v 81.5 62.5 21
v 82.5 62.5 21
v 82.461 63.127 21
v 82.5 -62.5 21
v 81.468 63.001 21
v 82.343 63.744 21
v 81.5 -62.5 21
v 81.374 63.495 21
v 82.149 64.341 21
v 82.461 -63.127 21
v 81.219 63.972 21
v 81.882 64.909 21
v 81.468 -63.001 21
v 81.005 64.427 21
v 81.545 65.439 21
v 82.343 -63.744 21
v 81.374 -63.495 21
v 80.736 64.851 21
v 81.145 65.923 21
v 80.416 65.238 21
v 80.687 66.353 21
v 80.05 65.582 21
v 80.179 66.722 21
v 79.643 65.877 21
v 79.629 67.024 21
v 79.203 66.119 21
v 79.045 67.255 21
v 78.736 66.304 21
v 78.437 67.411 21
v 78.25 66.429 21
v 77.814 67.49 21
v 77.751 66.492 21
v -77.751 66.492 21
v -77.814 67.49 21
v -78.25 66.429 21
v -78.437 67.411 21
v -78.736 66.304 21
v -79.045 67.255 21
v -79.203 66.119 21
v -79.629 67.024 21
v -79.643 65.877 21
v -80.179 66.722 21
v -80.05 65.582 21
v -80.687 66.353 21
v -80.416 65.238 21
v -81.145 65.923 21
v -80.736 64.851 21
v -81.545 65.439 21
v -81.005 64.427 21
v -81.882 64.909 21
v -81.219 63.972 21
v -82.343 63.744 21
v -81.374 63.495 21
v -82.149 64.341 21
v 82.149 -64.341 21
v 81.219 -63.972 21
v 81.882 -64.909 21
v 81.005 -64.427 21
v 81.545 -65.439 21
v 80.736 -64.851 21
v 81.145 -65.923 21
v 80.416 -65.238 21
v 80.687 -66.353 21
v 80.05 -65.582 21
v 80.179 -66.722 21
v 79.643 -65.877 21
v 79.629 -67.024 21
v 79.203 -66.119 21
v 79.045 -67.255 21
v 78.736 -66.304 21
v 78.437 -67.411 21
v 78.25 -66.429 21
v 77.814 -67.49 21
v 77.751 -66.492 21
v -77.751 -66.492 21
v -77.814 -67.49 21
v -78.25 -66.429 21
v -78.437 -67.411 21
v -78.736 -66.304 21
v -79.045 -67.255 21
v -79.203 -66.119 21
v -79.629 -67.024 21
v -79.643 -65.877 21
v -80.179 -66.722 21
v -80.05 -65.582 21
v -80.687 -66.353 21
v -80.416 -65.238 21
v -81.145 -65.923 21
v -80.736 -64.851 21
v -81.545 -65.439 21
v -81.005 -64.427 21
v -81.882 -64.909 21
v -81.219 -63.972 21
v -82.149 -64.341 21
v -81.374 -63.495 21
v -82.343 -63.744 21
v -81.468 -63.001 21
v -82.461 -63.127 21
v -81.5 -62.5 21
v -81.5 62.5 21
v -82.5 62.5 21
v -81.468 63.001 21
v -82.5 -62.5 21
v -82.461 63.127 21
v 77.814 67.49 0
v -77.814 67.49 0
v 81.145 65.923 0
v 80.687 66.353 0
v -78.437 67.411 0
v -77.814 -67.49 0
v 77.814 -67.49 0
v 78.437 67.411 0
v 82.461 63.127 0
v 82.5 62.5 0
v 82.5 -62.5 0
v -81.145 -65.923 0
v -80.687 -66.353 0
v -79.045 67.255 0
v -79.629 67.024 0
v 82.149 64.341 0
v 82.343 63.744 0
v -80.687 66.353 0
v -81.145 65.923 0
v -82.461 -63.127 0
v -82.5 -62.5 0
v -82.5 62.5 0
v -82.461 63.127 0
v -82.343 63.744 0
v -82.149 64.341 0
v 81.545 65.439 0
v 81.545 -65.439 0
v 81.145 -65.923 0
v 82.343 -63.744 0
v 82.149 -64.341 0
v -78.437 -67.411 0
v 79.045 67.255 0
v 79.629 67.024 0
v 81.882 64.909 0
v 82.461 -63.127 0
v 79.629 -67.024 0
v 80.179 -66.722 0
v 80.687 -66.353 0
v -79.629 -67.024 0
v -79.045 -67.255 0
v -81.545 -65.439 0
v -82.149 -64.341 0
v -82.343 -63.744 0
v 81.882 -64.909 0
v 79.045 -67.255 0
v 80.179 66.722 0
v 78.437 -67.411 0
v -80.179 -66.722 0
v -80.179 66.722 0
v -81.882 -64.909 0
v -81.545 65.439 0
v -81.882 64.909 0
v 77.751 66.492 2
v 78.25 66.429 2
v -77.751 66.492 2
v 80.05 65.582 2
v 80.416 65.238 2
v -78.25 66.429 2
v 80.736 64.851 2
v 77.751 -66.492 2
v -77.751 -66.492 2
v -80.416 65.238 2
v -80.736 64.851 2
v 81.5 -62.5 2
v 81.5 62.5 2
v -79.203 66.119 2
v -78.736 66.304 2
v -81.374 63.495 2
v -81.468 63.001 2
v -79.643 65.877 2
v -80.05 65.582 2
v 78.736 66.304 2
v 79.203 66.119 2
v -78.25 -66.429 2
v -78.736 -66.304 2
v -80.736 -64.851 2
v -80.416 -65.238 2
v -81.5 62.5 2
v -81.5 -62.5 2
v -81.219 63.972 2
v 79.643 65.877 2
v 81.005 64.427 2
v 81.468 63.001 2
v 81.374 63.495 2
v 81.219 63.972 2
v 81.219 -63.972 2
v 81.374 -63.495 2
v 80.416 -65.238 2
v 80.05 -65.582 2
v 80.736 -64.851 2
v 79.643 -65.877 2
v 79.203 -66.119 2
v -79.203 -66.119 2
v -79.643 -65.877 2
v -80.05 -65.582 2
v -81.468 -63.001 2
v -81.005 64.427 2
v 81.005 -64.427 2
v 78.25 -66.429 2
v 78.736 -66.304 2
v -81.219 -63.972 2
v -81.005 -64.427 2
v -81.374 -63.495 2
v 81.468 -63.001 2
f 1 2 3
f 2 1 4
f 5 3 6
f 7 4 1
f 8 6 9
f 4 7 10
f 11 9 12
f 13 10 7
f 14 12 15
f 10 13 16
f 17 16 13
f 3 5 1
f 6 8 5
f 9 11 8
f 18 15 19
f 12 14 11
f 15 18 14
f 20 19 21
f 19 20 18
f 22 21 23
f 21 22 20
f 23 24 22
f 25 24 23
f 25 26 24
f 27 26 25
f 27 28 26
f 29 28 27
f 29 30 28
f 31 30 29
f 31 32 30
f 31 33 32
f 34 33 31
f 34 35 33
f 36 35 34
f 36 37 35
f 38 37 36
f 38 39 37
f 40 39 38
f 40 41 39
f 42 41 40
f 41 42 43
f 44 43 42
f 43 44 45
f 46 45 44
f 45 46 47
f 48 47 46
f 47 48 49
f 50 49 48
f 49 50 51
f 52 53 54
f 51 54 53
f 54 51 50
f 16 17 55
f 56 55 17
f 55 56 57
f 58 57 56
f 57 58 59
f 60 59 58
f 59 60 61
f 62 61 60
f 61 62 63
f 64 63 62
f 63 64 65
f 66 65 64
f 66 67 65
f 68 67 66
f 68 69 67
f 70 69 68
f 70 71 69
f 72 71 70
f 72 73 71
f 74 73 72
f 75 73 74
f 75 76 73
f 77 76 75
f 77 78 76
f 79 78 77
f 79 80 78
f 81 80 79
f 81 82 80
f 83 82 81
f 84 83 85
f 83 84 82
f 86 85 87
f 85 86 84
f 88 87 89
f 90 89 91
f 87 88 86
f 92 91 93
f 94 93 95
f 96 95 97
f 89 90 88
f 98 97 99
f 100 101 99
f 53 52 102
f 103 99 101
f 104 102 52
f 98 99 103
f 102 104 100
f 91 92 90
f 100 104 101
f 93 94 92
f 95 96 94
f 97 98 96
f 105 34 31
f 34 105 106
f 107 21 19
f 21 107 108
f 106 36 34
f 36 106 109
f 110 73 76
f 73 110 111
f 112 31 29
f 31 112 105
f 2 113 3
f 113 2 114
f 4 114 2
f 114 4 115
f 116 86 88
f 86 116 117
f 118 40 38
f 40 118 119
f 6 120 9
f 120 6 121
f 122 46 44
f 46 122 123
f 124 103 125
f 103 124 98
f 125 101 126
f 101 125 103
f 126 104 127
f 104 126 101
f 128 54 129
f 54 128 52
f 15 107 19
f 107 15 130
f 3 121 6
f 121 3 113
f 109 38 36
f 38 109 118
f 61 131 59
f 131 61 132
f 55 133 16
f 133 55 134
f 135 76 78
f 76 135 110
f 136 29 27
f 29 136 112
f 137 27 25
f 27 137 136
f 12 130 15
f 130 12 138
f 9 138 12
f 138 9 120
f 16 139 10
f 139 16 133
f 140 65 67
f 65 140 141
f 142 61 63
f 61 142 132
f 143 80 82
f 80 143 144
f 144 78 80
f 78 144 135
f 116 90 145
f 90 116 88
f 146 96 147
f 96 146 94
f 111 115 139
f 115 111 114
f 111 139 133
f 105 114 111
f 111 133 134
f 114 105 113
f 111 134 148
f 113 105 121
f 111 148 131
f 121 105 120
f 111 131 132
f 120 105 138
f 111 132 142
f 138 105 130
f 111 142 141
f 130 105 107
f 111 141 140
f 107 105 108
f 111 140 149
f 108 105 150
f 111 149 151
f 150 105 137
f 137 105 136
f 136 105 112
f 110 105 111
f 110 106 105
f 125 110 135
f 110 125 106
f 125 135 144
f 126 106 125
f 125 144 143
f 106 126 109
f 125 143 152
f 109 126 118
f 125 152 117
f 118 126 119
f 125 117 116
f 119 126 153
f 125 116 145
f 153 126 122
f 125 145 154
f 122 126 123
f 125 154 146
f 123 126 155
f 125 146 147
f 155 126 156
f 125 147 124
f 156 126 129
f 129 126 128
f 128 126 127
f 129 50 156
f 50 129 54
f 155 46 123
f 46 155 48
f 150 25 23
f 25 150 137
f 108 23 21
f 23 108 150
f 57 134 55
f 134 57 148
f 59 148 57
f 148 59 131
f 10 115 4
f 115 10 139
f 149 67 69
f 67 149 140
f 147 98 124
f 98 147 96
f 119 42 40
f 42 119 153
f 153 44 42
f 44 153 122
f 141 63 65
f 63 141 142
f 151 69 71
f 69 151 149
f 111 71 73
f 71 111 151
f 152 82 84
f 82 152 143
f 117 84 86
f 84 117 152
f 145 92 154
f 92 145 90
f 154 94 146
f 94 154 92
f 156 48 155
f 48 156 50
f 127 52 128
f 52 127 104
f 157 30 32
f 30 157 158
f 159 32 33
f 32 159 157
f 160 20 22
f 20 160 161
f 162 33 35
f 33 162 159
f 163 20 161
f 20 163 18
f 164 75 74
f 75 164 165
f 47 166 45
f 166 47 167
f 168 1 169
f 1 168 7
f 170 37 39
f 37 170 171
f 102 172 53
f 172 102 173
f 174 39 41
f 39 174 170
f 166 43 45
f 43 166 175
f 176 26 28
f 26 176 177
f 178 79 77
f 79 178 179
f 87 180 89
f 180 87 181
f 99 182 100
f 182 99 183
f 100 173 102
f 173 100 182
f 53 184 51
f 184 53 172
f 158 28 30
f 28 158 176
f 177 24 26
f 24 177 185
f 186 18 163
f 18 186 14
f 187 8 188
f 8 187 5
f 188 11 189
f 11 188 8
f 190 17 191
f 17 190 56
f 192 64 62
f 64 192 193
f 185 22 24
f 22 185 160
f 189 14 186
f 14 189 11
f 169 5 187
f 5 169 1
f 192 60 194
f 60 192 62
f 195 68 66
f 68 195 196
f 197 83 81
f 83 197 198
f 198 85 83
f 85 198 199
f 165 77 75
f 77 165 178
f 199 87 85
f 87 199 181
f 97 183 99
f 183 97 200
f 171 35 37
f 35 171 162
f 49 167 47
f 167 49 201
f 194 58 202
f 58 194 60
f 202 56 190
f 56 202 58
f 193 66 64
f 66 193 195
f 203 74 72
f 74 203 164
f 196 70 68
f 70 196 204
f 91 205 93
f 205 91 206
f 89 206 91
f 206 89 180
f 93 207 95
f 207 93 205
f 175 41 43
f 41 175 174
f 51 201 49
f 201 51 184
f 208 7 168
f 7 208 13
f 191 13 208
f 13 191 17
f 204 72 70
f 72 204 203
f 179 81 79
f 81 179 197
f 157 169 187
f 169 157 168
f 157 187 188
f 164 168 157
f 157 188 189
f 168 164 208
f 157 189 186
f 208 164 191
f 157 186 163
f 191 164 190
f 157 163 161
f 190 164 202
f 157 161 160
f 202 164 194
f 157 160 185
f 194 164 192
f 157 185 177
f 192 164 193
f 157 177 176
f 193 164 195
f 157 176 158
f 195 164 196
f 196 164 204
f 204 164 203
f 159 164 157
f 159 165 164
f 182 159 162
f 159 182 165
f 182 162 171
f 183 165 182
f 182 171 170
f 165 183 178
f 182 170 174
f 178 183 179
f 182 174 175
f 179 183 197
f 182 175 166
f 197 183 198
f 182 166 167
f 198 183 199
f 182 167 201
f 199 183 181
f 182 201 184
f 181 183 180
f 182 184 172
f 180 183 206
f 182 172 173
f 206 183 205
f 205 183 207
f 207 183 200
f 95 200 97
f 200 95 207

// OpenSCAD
$fn = 50;


difference() {
	union() {
		hull() {
			translate(v = [-77.5000000000, 62.5000000000, 0]) {
				cylinder(h = 21, r = 5);
			}
			translate(v = [77.5000000000, 62.5000000000, 0]) {
				cylinder(h = 21, r = 5);
			}
			translate(v = [-77.5000000000, -62.5000000000, 0]) {
				cylinder(h = 21, r = 5);
			}
			translate(v = [77.5000000000, -62.5000000000, 0]) {
				cylinder(h = 21, r = 5);
			}
		}
	}
	union() {
		translate(v = [0, 0, 2]) {
			hull() {
				translate(v = [-77.5000000000, 62.5000000000, 0]) {
					cylinder(h = 19, r = 4);
				}
				translate(v = [77.5000000000, 62.5000000000, 0]) {
					cylinder(h = 19, r = 4);
				}
				translate(v = [-77.5000000000, -62.5000000000, 0]) {
					cylinder(h = 19, r = 4);
				}
				translate(v = [77.5000000000, -62.5000000000, 0]) {
					cylinder(h = 19, r = 4);
				}
			}
		}
	}
}
